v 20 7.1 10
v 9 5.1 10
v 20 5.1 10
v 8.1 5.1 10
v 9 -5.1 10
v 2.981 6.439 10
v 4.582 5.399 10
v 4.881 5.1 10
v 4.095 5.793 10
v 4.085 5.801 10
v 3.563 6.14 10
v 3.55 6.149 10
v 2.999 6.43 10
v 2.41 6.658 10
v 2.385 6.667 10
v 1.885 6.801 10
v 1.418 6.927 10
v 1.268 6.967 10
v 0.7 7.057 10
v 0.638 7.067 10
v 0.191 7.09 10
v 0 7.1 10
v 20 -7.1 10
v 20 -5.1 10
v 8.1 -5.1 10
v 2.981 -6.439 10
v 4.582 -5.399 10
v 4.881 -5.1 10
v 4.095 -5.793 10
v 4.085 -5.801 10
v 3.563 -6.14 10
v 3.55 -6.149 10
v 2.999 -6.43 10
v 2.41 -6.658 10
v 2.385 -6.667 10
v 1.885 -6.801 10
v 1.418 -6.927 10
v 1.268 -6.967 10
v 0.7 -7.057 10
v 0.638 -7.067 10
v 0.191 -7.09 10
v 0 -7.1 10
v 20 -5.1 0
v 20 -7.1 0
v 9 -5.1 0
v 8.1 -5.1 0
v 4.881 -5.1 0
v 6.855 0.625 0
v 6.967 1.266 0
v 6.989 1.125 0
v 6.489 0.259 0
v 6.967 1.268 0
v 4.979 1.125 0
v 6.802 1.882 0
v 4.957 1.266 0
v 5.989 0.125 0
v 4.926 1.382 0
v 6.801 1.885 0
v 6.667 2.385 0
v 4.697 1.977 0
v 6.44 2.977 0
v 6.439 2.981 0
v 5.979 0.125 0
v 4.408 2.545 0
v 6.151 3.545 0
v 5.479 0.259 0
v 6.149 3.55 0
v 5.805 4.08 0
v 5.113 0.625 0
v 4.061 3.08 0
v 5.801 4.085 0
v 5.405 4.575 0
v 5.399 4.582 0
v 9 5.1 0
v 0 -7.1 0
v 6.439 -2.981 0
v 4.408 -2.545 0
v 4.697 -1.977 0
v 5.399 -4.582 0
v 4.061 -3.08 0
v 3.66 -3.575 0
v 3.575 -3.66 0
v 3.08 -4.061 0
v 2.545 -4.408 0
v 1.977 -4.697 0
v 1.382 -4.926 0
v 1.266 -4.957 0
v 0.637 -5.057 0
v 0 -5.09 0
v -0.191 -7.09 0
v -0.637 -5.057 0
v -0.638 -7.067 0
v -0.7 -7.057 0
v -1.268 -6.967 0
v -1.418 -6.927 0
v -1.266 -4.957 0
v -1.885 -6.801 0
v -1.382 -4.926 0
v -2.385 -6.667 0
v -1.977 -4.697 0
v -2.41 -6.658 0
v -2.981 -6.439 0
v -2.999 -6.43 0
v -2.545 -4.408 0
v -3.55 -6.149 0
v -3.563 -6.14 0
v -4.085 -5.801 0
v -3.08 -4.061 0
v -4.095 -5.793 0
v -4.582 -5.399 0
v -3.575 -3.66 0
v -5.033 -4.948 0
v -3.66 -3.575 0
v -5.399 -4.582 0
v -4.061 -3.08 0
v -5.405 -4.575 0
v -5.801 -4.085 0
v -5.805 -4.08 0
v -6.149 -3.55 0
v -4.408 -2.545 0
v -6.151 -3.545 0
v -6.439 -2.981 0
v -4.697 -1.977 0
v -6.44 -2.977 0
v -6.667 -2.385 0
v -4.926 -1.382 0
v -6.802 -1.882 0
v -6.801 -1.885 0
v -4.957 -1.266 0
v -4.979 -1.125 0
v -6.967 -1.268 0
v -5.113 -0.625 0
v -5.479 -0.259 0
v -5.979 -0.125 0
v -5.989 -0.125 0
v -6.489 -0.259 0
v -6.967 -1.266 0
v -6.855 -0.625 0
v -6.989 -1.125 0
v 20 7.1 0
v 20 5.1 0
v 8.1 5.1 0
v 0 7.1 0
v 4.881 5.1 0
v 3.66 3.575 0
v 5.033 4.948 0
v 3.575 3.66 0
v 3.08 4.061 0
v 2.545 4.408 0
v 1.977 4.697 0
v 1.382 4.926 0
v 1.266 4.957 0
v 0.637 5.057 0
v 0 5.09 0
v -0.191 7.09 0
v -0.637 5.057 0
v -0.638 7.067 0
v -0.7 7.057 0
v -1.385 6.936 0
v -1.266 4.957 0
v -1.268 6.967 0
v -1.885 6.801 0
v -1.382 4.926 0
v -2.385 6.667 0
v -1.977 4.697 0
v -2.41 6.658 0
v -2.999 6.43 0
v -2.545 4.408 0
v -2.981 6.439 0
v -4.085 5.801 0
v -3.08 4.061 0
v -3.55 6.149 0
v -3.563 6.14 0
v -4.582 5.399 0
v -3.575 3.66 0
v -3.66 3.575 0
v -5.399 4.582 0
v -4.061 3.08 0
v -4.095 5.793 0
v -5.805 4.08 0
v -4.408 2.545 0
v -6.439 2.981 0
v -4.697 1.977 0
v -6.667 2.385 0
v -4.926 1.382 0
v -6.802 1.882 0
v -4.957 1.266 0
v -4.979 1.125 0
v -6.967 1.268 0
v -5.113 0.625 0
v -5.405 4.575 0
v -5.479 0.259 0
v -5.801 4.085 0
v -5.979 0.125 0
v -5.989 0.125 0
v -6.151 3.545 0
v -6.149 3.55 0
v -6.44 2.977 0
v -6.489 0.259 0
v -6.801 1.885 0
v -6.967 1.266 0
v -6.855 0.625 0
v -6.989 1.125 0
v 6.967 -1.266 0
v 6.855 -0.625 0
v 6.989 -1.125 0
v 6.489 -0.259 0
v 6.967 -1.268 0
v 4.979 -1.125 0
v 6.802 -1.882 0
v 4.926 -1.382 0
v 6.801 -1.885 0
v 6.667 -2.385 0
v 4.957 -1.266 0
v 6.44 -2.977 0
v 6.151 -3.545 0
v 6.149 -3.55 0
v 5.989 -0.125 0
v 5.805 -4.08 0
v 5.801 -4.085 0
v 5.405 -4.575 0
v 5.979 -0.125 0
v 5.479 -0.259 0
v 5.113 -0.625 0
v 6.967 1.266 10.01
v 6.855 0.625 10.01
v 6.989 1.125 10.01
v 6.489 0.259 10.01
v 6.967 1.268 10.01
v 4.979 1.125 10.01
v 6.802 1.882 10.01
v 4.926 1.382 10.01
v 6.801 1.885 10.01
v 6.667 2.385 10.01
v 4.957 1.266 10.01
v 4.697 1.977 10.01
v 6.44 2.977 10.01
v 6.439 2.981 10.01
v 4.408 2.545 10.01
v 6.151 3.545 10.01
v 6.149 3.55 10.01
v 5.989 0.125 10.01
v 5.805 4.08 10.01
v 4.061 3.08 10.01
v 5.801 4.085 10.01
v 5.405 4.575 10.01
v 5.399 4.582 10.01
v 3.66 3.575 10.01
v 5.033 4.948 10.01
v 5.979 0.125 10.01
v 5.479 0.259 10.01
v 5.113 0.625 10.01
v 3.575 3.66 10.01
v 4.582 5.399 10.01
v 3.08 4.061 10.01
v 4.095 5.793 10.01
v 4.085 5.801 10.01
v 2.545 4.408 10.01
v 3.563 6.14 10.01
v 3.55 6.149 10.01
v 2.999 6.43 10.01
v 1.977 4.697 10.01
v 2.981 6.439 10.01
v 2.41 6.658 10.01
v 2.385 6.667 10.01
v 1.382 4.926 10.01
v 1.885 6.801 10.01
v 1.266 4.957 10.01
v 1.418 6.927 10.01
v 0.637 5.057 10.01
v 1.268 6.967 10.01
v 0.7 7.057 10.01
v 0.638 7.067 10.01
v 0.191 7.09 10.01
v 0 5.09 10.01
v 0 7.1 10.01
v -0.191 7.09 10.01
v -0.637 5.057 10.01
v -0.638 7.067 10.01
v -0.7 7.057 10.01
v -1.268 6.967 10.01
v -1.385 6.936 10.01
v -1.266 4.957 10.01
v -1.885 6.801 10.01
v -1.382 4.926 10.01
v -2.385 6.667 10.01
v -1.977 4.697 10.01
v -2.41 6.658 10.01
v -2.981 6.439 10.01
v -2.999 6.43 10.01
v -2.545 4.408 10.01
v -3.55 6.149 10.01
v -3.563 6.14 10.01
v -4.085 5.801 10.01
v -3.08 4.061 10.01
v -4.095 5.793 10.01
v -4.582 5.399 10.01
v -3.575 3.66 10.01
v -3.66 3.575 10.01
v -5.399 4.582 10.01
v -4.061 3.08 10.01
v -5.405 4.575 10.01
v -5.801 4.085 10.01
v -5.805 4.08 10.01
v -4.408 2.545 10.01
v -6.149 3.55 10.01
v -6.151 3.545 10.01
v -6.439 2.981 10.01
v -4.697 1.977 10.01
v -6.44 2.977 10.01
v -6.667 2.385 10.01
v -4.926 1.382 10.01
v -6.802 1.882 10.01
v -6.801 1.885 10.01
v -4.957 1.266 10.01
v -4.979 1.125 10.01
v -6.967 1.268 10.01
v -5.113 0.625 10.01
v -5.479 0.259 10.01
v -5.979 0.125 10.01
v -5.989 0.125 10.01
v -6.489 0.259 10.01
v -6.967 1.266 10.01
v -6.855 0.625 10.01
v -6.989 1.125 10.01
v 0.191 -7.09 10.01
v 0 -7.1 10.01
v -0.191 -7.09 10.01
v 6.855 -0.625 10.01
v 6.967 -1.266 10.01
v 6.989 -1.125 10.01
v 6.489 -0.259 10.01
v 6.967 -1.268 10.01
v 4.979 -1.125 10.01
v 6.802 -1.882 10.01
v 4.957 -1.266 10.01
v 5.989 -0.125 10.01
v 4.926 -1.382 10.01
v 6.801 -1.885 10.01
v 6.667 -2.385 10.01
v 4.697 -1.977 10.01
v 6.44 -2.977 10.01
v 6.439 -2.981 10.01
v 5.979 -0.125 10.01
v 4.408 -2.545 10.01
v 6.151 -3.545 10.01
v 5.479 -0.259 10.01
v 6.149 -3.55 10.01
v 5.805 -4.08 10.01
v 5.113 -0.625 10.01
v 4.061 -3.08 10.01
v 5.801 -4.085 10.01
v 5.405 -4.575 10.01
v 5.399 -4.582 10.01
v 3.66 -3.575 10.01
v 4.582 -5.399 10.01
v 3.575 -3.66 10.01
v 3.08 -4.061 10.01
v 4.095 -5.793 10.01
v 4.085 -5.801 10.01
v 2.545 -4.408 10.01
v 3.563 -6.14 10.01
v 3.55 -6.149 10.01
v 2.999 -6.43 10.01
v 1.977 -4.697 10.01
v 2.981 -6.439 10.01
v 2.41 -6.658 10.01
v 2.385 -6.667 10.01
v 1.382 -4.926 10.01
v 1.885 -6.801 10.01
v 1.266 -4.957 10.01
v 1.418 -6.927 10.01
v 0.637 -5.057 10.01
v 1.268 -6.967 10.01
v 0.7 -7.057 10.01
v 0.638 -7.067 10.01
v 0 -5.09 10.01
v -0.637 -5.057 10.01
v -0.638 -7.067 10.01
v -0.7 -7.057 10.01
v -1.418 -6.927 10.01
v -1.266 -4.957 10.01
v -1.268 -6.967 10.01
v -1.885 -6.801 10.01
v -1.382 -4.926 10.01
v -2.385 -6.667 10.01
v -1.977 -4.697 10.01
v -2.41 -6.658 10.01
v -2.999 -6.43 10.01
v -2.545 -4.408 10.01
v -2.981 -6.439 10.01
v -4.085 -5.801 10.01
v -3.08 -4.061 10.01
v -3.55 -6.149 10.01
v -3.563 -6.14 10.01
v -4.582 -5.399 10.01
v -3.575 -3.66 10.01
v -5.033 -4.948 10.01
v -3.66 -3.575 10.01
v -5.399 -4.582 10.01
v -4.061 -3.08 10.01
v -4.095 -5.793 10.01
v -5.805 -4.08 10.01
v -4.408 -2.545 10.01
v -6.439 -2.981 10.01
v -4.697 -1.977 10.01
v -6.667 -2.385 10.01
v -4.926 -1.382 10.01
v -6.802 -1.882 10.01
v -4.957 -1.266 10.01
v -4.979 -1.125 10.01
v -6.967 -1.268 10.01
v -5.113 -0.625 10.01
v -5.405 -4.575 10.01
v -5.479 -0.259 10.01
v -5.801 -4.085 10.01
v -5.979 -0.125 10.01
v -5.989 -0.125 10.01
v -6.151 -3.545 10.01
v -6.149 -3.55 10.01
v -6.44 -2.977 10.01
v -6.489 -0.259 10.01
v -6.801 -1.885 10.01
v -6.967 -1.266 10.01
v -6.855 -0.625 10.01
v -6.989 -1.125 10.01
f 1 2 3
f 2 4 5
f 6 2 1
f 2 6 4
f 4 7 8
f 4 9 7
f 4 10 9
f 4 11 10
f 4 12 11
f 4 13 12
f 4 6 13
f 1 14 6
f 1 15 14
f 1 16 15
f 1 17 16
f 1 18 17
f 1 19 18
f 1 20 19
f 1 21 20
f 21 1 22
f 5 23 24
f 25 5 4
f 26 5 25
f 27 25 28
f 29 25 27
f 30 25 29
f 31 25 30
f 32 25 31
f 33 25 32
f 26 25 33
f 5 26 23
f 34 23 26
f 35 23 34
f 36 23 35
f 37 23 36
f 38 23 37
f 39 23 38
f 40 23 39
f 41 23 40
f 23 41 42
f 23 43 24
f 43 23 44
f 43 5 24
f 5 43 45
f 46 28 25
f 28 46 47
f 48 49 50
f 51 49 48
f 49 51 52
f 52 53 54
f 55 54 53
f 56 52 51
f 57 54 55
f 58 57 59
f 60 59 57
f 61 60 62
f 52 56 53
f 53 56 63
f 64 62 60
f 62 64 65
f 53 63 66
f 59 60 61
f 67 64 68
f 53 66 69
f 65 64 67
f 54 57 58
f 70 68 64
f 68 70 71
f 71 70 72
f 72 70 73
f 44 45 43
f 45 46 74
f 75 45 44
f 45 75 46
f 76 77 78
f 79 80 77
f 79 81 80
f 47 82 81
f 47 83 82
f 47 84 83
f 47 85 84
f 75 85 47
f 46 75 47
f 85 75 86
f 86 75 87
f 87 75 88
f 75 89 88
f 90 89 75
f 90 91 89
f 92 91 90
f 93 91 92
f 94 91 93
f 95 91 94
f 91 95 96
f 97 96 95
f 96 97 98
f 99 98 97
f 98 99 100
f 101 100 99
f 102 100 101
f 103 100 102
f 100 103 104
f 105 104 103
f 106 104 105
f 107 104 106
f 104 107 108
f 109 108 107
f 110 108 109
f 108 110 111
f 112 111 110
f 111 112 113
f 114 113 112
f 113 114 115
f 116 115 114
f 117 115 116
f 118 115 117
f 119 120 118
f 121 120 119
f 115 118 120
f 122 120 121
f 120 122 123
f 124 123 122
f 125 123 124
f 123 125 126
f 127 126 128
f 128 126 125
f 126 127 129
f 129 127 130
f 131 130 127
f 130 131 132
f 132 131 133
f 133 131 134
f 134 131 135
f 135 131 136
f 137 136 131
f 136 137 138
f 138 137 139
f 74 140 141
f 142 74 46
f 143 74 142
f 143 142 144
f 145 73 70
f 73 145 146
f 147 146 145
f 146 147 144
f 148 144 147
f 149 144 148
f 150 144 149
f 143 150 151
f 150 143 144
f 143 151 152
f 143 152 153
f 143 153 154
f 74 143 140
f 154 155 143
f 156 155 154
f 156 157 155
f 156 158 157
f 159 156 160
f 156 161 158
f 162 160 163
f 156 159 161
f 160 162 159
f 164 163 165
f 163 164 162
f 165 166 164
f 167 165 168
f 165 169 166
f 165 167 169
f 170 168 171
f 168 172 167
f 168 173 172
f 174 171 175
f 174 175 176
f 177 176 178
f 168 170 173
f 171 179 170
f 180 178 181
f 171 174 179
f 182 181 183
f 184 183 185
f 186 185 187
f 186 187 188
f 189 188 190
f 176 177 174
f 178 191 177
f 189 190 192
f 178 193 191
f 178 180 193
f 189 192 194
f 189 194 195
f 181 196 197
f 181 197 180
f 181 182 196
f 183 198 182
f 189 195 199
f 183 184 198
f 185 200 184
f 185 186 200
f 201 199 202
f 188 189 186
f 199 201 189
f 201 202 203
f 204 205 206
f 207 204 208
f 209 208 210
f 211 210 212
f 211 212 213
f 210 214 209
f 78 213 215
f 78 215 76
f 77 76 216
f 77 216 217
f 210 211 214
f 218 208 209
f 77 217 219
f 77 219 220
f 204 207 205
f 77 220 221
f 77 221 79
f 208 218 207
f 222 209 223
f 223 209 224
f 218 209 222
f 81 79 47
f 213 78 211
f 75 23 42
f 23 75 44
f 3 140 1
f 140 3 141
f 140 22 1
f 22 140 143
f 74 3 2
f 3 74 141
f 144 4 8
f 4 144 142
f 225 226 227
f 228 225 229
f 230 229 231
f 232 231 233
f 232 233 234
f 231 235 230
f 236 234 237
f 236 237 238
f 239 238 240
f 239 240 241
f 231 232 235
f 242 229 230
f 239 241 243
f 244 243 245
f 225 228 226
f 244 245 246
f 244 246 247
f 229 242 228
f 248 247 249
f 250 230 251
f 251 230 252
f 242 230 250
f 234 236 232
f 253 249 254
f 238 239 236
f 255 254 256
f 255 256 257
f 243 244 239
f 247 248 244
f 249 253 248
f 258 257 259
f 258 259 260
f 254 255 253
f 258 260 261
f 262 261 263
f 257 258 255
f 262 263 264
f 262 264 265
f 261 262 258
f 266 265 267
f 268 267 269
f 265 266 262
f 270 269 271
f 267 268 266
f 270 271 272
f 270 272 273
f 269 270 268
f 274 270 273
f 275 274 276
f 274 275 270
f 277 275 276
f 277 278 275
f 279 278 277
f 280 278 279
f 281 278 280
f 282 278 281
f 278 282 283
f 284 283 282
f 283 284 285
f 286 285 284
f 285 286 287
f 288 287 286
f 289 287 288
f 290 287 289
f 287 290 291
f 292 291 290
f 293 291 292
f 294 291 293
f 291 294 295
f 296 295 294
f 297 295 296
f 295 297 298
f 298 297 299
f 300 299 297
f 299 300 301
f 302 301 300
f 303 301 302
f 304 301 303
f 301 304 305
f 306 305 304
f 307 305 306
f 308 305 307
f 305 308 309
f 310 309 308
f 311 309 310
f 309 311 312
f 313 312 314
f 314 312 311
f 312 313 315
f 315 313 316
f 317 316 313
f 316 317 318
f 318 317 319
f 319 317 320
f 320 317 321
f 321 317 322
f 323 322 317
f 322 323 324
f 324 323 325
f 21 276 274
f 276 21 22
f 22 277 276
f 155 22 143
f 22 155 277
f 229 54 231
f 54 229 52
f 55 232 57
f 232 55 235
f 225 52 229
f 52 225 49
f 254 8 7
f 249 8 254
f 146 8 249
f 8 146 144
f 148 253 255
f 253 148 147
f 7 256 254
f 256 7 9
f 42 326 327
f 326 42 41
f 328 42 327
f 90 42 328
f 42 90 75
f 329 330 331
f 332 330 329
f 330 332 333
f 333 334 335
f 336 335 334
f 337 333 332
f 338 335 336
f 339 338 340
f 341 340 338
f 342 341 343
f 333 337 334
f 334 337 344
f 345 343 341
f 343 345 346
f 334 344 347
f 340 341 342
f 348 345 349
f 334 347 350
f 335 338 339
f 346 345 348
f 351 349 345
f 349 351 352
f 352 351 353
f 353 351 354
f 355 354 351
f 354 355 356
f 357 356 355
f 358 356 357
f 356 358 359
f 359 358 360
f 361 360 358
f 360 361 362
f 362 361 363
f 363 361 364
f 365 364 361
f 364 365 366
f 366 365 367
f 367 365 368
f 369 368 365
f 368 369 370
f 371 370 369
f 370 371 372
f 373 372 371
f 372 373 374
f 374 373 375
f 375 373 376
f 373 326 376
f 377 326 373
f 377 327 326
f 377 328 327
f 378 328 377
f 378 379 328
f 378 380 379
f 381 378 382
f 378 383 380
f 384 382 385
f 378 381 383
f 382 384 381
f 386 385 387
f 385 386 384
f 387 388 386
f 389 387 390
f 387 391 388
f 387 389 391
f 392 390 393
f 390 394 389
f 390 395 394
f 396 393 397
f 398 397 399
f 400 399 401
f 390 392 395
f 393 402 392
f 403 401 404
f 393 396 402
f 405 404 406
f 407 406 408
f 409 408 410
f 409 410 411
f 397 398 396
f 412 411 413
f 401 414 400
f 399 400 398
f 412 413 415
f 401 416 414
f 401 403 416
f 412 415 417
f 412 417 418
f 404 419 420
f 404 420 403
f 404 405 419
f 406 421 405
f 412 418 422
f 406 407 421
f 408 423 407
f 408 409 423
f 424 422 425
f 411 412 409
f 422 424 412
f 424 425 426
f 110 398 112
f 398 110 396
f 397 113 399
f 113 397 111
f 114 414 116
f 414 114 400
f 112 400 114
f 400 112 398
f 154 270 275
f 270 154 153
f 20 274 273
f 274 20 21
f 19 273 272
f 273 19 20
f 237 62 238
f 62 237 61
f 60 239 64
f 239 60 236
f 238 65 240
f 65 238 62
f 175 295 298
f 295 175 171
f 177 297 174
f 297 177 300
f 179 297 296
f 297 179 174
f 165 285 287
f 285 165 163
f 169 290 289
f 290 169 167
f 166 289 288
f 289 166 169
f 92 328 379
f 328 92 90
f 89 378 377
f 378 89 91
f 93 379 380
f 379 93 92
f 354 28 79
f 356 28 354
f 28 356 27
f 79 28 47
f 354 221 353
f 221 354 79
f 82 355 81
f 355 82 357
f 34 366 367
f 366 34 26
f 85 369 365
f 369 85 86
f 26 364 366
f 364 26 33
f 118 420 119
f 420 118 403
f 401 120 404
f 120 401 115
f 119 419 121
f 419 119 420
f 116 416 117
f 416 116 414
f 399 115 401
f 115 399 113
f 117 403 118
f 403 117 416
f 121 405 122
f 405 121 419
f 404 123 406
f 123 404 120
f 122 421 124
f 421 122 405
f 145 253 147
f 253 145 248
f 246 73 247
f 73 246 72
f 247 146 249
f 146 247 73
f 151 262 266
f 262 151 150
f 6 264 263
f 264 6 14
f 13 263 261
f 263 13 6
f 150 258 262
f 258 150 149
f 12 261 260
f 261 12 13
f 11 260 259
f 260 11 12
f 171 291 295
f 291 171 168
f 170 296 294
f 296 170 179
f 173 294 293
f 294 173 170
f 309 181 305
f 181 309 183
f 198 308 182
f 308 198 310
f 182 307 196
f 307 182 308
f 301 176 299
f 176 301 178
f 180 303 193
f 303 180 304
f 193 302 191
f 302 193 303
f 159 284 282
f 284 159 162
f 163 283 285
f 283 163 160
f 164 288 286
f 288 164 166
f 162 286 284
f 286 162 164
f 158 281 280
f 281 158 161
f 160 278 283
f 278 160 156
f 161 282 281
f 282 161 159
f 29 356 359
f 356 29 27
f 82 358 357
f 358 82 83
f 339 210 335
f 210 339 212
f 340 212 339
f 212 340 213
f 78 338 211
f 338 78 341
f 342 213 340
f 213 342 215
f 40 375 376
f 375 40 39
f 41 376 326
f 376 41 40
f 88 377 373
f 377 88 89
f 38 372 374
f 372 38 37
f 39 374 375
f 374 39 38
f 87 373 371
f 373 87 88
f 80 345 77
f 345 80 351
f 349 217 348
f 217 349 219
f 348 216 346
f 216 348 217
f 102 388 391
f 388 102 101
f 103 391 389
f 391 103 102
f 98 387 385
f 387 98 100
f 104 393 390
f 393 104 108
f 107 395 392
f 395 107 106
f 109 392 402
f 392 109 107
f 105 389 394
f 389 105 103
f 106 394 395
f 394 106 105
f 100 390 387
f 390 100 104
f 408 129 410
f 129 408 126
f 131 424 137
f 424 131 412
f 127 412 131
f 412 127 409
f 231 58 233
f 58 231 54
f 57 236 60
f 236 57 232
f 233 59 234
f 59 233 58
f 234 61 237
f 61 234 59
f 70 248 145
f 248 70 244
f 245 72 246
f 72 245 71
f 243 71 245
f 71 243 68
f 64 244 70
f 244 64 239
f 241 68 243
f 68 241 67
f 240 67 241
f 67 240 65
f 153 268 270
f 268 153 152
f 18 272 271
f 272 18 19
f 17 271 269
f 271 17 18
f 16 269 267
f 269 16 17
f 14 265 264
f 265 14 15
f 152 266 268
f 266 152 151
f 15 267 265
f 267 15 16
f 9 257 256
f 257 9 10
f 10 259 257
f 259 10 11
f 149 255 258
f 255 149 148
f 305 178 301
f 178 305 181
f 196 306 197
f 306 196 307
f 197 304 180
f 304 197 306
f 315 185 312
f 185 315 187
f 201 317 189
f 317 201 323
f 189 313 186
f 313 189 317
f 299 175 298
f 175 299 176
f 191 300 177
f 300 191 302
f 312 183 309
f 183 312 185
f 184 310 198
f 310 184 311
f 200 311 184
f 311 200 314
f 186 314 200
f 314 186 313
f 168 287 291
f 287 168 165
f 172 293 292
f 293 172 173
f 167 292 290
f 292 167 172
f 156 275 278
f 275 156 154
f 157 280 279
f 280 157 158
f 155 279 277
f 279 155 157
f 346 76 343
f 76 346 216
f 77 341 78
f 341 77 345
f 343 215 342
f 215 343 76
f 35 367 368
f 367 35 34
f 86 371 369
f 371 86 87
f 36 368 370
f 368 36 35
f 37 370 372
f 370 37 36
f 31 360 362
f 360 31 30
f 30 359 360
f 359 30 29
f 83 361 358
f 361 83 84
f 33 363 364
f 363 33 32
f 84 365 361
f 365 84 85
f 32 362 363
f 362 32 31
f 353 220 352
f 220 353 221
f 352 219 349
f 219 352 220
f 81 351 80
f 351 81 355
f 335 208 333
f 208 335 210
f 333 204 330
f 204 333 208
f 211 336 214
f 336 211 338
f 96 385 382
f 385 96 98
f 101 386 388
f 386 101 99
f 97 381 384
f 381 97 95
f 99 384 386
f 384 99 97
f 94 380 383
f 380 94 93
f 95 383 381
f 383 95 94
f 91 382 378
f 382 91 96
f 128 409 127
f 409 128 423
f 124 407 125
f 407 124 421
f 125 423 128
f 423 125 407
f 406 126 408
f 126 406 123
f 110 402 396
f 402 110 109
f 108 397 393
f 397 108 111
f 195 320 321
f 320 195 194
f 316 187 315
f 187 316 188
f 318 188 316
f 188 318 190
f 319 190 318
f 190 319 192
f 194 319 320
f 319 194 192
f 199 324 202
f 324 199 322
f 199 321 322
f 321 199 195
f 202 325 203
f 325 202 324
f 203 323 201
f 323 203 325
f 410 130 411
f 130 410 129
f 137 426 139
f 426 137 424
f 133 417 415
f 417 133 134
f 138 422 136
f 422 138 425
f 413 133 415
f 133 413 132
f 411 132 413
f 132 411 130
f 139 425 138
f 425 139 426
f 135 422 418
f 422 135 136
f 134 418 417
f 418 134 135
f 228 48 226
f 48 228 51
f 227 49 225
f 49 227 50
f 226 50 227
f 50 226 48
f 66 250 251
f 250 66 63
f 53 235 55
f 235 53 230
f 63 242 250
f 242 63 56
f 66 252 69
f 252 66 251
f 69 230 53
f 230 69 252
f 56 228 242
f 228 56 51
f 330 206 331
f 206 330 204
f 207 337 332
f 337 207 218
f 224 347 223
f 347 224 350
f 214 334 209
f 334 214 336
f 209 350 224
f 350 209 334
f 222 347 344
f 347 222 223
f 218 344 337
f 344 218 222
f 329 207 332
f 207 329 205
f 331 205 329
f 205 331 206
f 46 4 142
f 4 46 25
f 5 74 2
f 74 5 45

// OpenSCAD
$fn=60;

dowelR = 10.2 / 2;
thickness = 2;
thin = 0.90;
height = 10;

armL = 20;

outerR = dowelR + thickness;

midR = dowelR+thickness/2;


union() {
     minkowski() { 
        difference() {
            cylinder(r=midR, h = height);
            cylinder(r=midR-0.01, h = height*2.1,center=true);
            cube([outerR*2.1,thickness+0.25,height*2.1],center=true);
        }
        cylinder(d=thickness, h=0.01, $fn=12);
    }
    
    translate([outerR + 1, -outerR,0]) cube([thin,outerR*2,height]);

/*
    translate([dowelR*2+3,0,0]) difference() {
        translate([5-thin,0,0]) cylinder(r=dowelR+5, h = height);
        cylinder(r=dowelR, h = height*2.1,center=true);
        translate([0,-20,-20]) cube(40);
        translate([-50,outerR,-1]) cube(100);
        translate([-50,-100-outerR,-1]) cube(100);
    }
*/ 
    for(y=[-outerR, dowelR])
        translate([0,y,0]) cube([armL,thickness,height]);
}
